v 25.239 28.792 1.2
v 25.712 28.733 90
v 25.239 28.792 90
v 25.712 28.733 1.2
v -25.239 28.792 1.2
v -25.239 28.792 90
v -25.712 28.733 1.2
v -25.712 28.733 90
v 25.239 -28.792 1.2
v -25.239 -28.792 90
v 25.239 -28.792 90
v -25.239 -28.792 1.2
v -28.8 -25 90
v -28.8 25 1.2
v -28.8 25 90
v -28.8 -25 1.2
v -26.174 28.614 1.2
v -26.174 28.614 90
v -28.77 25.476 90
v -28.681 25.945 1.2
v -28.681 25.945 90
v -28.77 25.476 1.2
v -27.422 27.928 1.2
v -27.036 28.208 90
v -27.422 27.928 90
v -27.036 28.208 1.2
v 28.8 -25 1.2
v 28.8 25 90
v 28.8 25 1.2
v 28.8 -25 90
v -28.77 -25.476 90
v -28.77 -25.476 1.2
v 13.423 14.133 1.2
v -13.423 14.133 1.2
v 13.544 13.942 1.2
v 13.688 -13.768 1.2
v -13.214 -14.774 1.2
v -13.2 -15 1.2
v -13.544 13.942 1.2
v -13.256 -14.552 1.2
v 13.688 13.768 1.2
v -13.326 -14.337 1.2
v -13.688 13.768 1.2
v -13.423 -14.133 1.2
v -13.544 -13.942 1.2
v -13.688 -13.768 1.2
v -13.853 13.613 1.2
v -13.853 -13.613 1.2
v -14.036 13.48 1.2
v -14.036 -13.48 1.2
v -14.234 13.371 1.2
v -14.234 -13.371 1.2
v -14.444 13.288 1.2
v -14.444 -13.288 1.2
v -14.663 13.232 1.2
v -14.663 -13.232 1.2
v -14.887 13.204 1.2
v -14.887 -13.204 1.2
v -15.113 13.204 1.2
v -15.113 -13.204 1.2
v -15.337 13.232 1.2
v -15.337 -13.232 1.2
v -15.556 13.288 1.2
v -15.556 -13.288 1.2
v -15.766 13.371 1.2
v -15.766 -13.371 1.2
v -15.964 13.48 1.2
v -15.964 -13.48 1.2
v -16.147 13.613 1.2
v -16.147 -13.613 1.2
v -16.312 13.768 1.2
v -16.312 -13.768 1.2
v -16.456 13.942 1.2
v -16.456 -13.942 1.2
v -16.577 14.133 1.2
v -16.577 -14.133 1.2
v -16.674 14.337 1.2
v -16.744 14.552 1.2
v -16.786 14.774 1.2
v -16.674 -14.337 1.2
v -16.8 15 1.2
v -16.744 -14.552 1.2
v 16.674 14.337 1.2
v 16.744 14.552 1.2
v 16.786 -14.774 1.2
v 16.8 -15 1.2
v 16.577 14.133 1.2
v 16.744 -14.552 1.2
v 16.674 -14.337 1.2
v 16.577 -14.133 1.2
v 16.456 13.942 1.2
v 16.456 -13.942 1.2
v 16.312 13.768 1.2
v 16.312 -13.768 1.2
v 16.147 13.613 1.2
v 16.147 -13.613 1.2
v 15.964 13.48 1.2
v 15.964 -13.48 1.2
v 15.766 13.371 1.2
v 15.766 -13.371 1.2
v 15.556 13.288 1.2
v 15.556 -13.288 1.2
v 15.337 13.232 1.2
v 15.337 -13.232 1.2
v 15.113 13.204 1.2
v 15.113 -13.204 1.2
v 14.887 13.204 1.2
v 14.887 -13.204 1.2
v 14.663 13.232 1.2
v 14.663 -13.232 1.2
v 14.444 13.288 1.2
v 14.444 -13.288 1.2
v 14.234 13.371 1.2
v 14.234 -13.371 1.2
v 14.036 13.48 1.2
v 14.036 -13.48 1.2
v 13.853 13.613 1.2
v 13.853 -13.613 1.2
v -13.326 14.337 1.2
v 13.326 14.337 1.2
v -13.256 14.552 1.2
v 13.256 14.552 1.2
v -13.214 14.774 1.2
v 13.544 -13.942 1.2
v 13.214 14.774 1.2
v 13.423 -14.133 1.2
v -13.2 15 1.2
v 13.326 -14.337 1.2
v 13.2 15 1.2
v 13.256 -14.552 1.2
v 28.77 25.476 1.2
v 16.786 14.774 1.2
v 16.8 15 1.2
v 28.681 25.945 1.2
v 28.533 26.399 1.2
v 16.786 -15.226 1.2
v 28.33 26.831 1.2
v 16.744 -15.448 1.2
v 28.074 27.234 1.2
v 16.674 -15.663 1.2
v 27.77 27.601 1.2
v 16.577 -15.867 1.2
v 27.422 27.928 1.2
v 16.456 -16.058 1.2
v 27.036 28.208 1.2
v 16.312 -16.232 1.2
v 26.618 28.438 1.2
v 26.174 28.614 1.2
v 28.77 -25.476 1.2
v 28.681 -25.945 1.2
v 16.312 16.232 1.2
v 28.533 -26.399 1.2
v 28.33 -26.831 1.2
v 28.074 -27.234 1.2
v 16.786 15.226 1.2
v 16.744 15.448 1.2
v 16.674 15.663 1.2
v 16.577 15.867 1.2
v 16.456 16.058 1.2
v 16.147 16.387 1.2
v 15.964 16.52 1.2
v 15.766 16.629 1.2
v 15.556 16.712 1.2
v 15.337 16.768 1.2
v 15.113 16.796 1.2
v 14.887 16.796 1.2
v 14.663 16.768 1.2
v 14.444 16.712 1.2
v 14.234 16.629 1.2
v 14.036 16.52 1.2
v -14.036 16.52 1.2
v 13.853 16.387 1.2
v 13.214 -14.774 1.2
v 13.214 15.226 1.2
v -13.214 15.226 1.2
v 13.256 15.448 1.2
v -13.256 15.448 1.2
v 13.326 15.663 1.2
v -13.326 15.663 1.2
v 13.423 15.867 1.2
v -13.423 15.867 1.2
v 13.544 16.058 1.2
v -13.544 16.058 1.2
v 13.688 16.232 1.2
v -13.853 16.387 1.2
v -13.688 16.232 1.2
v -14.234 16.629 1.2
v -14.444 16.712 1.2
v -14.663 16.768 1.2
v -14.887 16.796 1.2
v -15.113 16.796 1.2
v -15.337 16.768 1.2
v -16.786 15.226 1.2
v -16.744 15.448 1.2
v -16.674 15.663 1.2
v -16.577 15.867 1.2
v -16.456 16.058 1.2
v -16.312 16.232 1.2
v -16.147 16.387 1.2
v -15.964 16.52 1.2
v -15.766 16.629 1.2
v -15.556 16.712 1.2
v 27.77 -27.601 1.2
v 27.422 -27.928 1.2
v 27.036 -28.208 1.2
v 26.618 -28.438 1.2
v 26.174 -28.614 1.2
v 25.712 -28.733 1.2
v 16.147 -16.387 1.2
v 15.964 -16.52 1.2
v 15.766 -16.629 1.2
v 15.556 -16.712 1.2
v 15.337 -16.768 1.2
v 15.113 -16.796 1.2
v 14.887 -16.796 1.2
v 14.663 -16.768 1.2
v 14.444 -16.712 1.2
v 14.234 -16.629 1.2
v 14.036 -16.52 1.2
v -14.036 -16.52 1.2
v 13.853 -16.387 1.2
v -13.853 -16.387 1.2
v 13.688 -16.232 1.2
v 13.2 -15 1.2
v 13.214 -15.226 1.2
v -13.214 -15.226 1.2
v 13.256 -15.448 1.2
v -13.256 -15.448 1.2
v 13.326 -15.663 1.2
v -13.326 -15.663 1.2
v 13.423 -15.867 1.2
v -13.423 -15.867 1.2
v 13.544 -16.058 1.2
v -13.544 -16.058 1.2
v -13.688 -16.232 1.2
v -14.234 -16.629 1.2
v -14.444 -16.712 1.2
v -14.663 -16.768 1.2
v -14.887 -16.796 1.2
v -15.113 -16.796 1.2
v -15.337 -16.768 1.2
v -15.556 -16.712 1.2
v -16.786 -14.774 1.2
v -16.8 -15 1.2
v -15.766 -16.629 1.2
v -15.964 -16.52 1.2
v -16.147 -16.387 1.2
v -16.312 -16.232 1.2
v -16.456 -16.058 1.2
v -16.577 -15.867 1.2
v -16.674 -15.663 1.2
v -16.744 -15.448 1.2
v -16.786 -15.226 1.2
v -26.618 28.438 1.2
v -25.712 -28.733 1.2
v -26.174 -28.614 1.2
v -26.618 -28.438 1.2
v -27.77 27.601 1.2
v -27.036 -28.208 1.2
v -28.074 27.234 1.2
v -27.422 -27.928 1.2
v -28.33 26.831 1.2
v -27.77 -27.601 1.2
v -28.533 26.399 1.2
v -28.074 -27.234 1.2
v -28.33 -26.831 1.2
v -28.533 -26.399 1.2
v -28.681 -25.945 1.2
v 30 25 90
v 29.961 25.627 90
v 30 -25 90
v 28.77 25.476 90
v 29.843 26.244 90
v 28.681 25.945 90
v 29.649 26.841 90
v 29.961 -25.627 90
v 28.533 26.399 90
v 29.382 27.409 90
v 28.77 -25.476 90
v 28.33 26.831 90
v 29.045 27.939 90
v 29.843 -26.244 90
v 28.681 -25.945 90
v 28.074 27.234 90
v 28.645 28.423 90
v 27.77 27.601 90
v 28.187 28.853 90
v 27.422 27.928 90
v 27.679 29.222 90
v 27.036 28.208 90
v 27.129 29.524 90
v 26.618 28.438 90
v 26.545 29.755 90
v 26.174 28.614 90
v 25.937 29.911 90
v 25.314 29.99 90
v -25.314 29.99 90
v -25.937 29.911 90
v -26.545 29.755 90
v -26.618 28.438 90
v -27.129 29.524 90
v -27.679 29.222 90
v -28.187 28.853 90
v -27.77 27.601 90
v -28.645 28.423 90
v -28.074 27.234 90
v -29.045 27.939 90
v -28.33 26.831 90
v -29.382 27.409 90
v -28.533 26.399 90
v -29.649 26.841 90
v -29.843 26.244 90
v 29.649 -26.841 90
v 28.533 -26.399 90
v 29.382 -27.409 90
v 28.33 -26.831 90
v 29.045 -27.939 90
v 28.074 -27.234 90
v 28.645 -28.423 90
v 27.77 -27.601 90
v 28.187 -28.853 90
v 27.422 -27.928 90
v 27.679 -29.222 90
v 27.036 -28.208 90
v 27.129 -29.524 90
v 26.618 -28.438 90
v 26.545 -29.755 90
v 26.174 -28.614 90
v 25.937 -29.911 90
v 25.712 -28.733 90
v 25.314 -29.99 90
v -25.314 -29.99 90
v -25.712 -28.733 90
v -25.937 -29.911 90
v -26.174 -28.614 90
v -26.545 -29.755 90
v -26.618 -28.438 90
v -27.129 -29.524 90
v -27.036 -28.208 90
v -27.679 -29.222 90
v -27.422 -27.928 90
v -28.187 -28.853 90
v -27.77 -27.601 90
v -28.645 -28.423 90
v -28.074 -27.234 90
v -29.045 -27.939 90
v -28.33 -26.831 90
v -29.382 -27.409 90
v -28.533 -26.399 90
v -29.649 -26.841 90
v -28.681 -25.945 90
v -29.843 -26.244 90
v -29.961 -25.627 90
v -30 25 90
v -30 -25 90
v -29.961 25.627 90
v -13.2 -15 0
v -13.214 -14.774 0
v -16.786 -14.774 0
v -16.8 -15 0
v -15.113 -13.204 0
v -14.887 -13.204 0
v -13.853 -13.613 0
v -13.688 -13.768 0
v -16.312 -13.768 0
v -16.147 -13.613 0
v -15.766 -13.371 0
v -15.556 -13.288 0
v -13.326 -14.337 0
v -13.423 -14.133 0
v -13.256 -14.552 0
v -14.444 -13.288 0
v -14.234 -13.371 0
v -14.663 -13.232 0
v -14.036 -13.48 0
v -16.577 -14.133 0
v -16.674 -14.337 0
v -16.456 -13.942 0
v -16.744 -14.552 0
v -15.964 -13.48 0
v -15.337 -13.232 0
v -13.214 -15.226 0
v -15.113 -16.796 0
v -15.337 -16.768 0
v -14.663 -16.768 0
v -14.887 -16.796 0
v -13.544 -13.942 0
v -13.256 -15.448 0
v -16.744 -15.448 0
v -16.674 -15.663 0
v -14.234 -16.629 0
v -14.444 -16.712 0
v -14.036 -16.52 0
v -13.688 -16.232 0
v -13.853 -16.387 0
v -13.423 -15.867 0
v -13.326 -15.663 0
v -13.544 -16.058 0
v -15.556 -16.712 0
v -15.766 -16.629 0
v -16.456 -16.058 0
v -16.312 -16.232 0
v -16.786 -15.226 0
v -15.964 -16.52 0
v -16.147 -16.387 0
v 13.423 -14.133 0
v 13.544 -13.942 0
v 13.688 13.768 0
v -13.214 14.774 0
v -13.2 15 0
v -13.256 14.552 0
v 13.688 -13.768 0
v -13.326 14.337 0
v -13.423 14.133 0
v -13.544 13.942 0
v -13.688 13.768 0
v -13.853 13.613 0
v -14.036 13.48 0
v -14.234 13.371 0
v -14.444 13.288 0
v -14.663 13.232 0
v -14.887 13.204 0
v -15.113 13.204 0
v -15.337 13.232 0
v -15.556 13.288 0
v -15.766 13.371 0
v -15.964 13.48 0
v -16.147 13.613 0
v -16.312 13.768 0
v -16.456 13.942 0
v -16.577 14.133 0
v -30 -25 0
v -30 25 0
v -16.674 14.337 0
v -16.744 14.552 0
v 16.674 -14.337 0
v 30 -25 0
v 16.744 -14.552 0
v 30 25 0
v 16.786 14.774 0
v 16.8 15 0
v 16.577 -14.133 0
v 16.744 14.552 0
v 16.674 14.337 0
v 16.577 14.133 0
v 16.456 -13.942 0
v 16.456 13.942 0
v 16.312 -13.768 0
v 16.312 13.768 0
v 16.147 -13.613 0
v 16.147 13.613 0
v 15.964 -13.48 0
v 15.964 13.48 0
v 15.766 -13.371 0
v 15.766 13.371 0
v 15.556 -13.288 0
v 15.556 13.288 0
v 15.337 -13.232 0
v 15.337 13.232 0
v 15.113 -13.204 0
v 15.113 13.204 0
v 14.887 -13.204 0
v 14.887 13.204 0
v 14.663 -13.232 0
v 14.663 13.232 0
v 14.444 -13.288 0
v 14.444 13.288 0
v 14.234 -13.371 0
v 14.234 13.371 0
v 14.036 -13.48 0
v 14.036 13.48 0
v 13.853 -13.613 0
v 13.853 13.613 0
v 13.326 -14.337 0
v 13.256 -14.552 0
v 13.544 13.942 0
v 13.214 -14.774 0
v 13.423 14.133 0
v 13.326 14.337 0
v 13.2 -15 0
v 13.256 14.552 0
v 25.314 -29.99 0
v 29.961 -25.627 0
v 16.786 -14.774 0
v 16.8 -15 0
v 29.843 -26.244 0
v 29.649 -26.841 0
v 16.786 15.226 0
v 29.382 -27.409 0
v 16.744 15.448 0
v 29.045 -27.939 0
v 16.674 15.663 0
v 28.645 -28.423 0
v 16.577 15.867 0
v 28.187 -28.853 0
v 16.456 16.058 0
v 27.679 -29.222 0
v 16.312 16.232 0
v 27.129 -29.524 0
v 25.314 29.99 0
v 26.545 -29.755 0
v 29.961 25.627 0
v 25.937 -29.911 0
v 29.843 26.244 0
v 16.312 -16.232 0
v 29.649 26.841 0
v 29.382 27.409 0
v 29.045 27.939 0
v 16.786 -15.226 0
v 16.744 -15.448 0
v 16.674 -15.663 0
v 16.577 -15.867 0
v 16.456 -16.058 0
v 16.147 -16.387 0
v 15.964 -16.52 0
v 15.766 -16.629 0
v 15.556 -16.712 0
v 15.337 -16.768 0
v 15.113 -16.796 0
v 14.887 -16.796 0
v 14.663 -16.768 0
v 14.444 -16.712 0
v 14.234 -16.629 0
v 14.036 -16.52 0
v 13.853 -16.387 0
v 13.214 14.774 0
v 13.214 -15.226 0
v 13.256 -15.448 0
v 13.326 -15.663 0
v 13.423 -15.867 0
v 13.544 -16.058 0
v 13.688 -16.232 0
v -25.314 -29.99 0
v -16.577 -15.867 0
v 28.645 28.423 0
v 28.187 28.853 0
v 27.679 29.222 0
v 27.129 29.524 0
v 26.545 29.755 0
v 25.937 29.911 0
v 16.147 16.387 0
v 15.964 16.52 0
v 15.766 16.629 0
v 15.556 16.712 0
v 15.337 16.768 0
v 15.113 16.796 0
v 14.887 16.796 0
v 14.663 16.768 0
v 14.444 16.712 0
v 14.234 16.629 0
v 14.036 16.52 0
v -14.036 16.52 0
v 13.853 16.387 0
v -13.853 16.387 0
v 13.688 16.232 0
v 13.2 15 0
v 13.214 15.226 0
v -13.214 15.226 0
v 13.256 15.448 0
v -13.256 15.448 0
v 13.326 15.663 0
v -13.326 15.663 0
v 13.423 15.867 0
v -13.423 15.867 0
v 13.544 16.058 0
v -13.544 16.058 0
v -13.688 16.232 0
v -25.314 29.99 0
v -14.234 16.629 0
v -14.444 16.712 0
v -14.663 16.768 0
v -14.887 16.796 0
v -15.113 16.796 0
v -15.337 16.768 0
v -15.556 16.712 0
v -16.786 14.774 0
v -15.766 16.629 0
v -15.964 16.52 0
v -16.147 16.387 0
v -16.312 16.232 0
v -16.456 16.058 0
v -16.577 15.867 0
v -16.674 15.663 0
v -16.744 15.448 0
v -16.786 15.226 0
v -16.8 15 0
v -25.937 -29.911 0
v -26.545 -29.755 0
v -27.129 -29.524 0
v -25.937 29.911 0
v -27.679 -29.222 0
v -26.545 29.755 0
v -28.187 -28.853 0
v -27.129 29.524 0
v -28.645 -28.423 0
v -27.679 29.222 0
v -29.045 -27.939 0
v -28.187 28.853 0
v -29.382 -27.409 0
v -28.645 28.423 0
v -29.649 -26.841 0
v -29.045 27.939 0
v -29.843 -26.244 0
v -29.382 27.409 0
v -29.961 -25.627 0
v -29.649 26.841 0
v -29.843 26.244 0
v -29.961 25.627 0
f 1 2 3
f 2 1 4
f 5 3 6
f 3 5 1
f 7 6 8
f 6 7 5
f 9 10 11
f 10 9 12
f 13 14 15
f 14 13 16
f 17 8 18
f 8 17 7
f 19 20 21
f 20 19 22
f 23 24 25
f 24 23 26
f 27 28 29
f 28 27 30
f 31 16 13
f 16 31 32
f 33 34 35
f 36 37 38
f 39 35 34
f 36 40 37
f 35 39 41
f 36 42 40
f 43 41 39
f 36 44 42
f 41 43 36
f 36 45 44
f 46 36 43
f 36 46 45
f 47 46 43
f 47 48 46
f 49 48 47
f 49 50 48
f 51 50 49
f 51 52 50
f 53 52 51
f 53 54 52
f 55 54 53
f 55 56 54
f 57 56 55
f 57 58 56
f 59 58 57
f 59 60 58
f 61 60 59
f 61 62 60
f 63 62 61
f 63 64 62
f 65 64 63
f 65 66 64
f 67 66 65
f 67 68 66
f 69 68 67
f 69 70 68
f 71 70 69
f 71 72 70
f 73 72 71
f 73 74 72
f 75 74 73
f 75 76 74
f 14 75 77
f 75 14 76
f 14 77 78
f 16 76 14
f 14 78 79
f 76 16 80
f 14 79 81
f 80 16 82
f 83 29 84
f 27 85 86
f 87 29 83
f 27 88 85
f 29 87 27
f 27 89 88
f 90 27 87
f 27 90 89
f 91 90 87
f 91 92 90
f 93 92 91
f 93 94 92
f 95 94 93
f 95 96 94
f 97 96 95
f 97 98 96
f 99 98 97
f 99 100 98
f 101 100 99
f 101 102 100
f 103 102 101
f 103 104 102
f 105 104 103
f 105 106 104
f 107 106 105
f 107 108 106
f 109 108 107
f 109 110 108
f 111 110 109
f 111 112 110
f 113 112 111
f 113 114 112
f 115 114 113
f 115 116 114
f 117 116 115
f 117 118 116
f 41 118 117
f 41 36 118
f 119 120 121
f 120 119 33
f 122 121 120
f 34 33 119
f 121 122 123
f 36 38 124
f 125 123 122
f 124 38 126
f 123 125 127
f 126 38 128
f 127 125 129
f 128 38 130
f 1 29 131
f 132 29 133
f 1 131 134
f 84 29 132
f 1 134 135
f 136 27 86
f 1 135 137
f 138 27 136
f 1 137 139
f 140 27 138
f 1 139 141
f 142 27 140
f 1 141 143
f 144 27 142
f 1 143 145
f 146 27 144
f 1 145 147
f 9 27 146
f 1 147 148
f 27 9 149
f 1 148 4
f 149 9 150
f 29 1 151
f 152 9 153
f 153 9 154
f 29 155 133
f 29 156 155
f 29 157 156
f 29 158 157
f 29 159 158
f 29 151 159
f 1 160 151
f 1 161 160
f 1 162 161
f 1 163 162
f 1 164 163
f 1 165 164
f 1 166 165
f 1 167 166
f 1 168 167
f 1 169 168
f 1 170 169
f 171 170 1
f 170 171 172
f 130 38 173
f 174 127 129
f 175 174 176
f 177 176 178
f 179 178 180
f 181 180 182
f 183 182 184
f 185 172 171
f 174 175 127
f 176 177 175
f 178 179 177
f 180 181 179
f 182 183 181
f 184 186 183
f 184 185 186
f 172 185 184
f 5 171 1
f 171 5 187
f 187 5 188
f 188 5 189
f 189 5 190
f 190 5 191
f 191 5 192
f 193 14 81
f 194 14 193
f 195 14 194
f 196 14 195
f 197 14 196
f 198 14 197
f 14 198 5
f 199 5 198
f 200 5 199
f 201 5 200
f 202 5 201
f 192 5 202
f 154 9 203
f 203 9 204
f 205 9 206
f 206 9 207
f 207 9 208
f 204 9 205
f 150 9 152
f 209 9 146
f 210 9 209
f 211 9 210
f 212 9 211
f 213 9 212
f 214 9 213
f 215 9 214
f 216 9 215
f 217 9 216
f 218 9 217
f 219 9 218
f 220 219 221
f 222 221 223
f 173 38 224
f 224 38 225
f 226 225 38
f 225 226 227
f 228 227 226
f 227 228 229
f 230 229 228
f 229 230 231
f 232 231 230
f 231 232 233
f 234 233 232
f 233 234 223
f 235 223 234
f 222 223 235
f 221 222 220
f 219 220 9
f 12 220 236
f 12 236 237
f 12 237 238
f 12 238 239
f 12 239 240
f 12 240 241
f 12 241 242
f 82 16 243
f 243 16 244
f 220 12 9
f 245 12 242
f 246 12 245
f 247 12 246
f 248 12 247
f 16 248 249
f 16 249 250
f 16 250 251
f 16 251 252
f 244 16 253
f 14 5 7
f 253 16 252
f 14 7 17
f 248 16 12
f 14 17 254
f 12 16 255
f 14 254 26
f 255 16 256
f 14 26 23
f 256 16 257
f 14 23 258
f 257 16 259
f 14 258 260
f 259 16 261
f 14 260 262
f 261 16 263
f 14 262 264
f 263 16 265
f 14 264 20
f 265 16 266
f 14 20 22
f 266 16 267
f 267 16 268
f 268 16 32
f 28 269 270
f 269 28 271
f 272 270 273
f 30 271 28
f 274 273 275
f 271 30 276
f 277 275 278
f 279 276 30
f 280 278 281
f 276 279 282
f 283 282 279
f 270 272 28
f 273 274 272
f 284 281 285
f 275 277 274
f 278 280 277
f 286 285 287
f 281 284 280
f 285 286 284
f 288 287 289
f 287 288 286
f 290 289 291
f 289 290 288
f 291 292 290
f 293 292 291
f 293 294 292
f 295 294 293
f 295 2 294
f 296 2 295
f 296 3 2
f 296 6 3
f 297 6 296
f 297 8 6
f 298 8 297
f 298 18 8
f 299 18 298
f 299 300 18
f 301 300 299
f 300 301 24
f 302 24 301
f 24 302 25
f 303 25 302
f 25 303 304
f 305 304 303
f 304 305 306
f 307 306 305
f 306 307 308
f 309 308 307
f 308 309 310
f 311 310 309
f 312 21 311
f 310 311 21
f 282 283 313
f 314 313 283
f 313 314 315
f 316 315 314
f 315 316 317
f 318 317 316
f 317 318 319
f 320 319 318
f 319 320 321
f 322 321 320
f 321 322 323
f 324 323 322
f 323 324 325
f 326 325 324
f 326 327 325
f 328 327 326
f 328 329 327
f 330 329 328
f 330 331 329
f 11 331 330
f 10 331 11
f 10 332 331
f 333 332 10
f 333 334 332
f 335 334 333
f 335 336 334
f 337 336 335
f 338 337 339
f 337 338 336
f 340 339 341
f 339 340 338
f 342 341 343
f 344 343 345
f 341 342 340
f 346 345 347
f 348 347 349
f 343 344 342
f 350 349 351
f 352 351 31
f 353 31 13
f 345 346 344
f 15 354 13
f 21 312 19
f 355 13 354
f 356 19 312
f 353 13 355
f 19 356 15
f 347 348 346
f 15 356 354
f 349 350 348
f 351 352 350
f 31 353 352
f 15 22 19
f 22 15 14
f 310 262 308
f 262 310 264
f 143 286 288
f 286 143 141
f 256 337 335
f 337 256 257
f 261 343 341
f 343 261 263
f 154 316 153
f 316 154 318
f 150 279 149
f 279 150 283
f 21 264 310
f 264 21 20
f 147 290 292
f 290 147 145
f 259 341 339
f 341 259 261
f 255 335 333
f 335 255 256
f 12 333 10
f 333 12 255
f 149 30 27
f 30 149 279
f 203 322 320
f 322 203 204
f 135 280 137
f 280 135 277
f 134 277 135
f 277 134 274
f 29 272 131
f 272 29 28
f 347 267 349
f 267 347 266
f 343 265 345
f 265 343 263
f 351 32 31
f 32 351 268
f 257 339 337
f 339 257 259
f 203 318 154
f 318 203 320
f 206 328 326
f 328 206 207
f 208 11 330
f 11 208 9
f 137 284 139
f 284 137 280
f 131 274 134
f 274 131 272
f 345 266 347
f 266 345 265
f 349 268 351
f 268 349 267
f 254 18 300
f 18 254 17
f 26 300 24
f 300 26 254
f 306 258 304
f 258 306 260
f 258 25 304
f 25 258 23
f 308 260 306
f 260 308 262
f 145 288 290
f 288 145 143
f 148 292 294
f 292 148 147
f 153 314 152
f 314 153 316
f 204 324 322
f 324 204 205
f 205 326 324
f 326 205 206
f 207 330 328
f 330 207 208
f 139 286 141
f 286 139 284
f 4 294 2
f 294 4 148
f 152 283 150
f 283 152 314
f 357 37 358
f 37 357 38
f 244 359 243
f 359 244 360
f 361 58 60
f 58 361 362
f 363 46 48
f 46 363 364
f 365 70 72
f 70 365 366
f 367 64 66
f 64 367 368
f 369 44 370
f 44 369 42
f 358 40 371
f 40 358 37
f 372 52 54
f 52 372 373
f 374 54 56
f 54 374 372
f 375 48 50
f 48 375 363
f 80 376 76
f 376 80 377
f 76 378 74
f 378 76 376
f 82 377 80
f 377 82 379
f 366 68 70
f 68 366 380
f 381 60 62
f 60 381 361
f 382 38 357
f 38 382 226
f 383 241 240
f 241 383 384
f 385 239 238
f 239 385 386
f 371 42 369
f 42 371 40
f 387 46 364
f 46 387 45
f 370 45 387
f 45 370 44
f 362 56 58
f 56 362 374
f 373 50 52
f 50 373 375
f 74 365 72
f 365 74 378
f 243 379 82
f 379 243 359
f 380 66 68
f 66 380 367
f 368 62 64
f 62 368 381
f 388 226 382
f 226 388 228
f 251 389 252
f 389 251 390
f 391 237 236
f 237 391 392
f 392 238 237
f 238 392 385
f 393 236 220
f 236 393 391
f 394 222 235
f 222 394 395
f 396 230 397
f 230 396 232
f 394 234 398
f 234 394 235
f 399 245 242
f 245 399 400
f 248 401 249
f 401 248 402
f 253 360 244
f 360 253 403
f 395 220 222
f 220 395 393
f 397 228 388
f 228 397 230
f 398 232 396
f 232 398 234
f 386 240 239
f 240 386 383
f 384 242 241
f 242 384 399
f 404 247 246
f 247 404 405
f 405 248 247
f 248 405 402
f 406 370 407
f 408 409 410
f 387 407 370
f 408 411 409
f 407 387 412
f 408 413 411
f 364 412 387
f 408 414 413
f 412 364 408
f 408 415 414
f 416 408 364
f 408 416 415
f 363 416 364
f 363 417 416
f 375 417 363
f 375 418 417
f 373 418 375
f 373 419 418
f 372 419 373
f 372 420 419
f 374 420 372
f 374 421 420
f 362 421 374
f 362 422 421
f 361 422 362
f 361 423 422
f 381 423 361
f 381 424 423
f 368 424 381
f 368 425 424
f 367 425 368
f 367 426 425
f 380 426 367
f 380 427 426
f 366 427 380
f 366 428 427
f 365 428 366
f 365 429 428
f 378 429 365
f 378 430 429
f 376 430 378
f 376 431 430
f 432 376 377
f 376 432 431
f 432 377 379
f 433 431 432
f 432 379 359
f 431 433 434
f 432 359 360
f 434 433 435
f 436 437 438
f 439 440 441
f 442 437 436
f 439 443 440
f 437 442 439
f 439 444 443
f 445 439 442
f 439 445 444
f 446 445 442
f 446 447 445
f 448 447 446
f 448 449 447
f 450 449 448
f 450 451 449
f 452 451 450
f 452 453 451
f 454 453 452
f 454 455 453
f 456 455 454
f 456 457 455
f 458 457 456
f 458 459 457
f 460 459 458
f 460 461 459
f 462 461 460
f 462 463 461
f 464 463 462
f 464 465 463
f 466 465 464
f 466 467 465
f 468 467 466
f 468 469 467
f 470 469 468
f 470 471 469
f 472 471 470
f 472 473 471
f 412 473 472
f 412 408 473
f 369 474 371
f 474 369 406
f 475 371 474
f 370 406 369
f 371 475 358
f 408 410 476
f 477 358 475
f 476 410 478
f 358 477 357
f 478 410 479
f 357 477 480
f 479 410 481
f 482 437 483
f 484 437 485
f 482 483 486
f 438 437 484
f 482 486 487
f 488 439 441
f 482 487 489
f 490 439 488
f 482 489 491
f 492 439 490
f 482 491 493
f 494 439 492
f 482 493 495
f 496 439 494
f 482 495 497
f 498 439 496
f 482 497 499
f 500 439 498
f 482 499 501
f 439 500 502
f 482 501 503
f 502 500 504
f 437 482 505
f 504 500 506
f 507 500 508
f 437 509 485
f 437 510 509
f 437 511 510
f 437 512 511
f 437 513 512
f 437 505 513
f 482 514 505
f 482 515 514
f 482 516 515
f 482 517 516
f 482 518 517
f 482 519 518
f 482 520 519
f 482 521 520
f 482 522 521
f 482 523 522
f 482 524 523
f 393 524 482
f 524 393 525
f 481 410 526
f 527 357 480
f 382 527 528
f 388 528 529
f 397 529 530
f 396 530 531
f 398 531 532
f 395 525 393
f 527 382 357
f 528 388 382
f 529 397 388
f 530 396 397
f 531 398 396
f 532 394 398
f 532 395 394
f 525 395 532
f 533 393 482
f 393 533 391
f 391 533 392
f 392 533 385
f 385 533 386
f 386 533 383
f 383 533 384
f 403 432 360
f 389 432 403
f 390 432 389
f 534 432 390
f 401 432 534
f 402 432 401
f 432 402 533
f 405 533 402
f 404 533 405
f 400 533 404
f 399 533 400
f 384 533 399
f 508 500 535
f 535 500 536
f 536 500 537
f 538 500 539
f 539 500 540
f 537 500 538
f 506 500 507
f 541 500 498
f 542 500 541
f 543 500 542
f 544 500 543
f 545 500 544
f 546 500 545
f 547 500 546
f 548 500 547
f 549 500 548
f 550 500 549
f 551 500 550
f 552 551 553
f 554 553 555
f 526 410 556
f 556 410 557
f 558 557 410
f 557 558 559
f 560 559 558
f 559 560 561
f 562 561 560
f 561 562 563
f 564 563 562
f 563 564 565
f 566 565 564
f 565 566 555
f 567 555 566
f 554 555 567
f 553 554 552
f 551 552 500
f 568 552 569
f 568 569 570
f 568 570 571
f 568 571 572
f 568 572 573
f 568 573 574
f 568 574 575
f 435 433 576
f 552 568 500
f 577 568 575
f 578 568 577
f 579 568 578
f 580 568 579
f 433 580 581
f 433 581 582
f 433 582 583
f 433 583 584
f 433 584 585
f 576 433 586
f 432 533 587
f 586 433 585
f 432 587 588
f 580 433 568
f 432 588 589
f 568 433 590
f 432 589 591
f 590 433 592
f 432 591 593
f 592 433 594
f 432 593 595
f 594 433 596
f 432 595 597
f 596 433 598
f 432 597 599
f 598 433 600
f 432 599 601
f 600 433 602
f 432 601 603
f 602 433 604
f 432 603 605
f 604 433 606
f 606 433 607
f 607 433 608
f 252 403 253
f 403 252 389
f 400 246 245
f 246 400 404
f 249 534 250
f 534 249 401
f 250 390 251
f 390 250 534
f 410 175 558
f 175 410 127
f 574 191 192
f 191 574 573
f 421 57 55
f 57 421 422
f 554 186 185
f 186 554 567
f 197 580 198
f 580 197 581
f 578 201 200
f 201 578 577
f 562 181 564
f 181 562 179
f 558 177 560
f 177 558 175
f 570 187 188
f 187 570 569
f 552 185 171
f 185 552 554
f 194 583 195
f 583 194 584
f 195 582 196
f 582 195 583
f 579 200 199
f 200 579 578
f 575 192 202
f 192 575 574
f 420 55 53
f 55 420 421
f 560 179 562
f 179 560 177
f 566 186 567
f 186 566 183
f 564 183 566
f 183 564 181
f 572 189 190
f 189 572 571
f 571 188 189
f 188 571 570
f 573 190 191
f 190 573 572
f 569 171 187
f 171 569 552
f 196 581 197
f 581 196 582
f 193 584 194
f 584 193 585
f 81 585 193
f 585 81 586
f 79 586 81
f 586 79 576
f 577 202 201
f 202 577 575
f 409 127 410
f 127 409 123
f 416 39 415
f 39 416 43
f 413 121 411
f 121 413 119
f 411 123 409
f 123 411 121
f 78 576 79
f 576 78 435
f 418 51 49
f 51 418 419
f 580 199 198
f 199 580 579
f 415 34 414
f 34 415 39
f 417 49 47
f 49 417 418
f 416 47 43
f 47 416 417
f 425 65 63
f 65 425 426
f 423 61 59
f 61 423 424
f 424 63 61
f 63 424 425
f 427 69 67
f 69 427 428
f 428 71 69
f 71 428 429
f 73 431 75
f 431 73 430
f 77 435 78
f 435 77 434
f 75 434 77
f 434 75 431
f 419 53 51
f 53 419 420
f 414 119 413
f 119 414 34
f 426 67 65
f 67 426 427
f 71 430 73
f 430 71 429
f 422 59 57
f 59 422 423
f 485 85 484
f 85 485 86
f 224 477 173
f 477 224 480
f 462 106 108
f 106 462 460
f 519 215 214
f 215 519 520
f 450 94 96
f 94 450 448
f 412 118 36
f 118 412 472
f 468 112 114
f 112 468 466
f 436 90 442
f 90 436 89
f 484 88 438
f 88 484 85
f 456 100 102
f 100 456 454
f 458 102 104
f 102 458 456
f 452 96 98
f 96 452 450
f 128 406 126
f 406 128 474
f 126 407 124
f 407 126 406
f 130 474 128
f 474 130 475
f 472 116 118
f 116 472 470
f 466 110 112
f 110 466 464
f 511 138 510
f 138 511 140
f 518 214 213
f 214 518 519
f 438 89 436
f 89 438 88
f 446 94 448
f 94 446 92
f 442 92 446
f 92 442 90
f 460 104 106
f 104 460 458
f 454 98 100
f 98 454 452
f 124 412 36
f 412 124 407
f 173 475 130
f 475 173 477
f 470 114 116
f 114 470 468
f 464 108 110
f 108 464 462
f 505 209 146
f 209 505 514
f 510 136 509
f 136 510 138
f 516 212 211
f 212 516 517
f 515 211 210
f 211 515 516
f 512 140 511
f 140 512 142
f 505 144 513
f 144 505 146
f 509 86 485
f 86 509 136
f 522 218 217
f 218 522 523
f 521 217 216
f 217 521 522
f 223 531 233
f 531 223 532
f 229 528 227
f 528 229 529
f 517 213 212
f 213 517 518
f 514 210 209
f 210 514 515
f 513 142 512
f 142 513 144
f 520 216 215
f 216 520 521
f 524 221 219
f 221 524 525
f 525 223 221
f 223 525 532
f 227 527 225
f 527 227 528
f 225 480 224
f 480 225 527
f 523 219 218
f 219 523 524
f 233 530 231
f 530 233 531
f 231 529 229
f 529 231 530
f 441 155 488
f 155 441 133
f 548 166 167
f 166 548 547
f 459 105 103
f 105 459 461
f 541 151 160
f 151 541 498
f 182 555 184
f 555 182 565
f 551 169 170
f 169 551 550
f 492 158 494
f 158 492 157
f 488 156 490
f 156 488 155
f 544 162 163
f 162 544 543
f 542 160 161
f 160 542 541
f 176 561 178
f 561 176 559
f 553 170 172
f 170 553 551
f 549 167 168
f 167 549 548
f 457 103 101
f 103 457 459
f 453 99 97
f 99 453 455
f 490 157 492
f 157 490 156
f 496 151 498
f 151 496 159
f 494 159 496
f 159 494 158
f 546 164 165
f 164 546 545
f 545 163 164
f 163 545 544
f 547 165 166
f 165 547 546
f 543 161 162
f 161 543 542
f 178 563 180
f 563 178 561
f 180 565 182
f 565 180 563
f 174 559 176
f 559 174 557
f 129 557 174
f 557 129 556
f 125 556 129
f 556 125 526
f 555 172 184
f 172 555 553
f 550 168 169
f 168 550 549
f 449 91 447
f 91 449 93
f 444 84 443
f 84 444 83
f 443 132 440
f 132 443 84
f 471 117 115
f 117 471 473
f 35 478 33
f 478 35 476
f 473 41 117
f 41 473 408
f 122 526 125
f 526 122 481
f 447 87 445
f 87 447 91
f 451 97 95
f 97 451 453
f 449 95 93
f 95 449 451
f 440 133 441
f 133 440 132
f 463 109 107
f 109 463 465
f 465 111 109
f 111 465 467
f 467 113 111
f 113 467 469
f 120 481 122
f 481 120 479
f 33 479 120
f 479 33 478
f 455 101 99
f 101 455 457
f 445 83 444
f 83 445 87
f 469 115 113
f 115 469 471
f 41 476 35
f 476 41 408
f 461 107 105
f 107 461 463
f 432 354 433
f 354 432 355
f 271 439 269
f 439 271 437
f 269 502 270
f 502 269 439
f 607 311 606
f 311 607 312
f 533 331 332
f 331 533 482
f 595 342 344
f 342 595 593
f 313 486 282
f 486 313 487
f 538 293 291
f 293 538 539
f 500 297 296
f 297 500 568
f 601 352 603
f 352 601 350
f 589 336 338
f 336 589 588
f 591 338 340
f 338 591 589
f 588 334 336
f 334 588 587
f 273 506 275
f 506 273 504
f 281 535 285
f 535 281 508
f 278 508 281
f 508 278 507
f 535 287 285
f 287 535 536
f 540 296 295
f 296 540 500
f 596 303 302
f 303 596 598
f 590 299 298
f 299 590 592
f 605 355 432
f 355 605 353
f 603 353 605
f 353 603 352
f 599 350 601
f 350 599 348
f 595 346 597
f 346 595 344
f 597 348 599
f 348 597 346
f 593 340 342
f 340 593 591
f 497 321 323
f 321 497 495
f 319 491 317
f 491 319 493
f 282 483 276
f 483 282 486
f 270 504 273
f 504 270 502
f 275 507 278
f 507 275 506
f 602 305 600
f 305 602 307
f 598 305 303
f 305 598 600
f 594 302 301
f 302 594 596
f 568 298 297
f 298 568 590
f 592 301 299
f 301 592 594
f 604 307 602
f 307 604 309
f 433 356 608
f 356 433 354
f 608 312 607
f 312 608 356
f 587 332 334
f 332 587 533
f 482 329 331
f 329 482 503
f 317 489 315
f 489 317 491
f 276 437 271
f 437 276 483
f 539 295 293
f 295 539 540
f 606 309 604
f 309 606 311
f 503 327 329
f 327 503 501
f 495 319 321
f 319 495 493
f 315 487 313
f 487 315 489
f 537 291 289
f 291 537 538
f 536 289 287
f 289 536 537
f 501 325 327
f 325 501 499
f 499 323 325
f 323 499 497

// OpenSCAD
$fn = 50;


difference() {
	union() {
		hull() {
			translate(v = [-25.0000000000, 25.0000000000, 0]) {
				cylinder(h = 90, r = 5);
			}
			translate(v = [25.0000000000, 25.0000000000, 0]) {
				cylinder(h = 90, r = 5);
			}
			translate(v = [-25.0000000000, -25.0000000000, 0]) {
				cylinder(h = 90, r = 5);
			}
			translate(v = [25.0000000000, -25.0000000000, 0]) {
				cylinder(h = 90, r = 5);
			}
		}
	}
	union() {
		translate(v = [0, 0, 1.2000000000]) {
			hull() {
				translate(v = [-25.0000000000, 25.0000000000, 0]) {
					cylinder(h = 88.8000000000, r = 3.8000000000);
				}
				translate(v = [25.0000000000, 25.0000000000, 0]) {
					cylinder(h = 88.8000000000, r = 3.8000000000);
				}
				translate(v = [-25.0000000000, -25.0000000000, 0]) {
					cylinder(h = 88.8000000000, r = 3.8000000000);
				}
				translate(v = [25.0000000000, -25.0000000000, 0]) {
					cylinder(h = 88.8000000000, r = 3.8000000000);
				}
			}
		}
		#translate(v = [-15.0000000000, -15.0000000000, 0]) {
			cylinder(h = 1.2000000000, r = 1.8000000000);
		}
		#translate(v = [-15.0000000000, 15.0000000000, 0]) {
			cylinder(h = 1.2000000000, r = 1.8000000000);
		}
		#translate(v = [15.0000000000, -15.0000000000, 0]) {
			cylinder(h = 1.2000000000, r = 1.8000000000);
		}
		#translate(v = [15.0000000000, 15.0000000000, 0]) {
			cylinder(h = 1.2000000000, r = 1.8000000000);
		}
	}
}
